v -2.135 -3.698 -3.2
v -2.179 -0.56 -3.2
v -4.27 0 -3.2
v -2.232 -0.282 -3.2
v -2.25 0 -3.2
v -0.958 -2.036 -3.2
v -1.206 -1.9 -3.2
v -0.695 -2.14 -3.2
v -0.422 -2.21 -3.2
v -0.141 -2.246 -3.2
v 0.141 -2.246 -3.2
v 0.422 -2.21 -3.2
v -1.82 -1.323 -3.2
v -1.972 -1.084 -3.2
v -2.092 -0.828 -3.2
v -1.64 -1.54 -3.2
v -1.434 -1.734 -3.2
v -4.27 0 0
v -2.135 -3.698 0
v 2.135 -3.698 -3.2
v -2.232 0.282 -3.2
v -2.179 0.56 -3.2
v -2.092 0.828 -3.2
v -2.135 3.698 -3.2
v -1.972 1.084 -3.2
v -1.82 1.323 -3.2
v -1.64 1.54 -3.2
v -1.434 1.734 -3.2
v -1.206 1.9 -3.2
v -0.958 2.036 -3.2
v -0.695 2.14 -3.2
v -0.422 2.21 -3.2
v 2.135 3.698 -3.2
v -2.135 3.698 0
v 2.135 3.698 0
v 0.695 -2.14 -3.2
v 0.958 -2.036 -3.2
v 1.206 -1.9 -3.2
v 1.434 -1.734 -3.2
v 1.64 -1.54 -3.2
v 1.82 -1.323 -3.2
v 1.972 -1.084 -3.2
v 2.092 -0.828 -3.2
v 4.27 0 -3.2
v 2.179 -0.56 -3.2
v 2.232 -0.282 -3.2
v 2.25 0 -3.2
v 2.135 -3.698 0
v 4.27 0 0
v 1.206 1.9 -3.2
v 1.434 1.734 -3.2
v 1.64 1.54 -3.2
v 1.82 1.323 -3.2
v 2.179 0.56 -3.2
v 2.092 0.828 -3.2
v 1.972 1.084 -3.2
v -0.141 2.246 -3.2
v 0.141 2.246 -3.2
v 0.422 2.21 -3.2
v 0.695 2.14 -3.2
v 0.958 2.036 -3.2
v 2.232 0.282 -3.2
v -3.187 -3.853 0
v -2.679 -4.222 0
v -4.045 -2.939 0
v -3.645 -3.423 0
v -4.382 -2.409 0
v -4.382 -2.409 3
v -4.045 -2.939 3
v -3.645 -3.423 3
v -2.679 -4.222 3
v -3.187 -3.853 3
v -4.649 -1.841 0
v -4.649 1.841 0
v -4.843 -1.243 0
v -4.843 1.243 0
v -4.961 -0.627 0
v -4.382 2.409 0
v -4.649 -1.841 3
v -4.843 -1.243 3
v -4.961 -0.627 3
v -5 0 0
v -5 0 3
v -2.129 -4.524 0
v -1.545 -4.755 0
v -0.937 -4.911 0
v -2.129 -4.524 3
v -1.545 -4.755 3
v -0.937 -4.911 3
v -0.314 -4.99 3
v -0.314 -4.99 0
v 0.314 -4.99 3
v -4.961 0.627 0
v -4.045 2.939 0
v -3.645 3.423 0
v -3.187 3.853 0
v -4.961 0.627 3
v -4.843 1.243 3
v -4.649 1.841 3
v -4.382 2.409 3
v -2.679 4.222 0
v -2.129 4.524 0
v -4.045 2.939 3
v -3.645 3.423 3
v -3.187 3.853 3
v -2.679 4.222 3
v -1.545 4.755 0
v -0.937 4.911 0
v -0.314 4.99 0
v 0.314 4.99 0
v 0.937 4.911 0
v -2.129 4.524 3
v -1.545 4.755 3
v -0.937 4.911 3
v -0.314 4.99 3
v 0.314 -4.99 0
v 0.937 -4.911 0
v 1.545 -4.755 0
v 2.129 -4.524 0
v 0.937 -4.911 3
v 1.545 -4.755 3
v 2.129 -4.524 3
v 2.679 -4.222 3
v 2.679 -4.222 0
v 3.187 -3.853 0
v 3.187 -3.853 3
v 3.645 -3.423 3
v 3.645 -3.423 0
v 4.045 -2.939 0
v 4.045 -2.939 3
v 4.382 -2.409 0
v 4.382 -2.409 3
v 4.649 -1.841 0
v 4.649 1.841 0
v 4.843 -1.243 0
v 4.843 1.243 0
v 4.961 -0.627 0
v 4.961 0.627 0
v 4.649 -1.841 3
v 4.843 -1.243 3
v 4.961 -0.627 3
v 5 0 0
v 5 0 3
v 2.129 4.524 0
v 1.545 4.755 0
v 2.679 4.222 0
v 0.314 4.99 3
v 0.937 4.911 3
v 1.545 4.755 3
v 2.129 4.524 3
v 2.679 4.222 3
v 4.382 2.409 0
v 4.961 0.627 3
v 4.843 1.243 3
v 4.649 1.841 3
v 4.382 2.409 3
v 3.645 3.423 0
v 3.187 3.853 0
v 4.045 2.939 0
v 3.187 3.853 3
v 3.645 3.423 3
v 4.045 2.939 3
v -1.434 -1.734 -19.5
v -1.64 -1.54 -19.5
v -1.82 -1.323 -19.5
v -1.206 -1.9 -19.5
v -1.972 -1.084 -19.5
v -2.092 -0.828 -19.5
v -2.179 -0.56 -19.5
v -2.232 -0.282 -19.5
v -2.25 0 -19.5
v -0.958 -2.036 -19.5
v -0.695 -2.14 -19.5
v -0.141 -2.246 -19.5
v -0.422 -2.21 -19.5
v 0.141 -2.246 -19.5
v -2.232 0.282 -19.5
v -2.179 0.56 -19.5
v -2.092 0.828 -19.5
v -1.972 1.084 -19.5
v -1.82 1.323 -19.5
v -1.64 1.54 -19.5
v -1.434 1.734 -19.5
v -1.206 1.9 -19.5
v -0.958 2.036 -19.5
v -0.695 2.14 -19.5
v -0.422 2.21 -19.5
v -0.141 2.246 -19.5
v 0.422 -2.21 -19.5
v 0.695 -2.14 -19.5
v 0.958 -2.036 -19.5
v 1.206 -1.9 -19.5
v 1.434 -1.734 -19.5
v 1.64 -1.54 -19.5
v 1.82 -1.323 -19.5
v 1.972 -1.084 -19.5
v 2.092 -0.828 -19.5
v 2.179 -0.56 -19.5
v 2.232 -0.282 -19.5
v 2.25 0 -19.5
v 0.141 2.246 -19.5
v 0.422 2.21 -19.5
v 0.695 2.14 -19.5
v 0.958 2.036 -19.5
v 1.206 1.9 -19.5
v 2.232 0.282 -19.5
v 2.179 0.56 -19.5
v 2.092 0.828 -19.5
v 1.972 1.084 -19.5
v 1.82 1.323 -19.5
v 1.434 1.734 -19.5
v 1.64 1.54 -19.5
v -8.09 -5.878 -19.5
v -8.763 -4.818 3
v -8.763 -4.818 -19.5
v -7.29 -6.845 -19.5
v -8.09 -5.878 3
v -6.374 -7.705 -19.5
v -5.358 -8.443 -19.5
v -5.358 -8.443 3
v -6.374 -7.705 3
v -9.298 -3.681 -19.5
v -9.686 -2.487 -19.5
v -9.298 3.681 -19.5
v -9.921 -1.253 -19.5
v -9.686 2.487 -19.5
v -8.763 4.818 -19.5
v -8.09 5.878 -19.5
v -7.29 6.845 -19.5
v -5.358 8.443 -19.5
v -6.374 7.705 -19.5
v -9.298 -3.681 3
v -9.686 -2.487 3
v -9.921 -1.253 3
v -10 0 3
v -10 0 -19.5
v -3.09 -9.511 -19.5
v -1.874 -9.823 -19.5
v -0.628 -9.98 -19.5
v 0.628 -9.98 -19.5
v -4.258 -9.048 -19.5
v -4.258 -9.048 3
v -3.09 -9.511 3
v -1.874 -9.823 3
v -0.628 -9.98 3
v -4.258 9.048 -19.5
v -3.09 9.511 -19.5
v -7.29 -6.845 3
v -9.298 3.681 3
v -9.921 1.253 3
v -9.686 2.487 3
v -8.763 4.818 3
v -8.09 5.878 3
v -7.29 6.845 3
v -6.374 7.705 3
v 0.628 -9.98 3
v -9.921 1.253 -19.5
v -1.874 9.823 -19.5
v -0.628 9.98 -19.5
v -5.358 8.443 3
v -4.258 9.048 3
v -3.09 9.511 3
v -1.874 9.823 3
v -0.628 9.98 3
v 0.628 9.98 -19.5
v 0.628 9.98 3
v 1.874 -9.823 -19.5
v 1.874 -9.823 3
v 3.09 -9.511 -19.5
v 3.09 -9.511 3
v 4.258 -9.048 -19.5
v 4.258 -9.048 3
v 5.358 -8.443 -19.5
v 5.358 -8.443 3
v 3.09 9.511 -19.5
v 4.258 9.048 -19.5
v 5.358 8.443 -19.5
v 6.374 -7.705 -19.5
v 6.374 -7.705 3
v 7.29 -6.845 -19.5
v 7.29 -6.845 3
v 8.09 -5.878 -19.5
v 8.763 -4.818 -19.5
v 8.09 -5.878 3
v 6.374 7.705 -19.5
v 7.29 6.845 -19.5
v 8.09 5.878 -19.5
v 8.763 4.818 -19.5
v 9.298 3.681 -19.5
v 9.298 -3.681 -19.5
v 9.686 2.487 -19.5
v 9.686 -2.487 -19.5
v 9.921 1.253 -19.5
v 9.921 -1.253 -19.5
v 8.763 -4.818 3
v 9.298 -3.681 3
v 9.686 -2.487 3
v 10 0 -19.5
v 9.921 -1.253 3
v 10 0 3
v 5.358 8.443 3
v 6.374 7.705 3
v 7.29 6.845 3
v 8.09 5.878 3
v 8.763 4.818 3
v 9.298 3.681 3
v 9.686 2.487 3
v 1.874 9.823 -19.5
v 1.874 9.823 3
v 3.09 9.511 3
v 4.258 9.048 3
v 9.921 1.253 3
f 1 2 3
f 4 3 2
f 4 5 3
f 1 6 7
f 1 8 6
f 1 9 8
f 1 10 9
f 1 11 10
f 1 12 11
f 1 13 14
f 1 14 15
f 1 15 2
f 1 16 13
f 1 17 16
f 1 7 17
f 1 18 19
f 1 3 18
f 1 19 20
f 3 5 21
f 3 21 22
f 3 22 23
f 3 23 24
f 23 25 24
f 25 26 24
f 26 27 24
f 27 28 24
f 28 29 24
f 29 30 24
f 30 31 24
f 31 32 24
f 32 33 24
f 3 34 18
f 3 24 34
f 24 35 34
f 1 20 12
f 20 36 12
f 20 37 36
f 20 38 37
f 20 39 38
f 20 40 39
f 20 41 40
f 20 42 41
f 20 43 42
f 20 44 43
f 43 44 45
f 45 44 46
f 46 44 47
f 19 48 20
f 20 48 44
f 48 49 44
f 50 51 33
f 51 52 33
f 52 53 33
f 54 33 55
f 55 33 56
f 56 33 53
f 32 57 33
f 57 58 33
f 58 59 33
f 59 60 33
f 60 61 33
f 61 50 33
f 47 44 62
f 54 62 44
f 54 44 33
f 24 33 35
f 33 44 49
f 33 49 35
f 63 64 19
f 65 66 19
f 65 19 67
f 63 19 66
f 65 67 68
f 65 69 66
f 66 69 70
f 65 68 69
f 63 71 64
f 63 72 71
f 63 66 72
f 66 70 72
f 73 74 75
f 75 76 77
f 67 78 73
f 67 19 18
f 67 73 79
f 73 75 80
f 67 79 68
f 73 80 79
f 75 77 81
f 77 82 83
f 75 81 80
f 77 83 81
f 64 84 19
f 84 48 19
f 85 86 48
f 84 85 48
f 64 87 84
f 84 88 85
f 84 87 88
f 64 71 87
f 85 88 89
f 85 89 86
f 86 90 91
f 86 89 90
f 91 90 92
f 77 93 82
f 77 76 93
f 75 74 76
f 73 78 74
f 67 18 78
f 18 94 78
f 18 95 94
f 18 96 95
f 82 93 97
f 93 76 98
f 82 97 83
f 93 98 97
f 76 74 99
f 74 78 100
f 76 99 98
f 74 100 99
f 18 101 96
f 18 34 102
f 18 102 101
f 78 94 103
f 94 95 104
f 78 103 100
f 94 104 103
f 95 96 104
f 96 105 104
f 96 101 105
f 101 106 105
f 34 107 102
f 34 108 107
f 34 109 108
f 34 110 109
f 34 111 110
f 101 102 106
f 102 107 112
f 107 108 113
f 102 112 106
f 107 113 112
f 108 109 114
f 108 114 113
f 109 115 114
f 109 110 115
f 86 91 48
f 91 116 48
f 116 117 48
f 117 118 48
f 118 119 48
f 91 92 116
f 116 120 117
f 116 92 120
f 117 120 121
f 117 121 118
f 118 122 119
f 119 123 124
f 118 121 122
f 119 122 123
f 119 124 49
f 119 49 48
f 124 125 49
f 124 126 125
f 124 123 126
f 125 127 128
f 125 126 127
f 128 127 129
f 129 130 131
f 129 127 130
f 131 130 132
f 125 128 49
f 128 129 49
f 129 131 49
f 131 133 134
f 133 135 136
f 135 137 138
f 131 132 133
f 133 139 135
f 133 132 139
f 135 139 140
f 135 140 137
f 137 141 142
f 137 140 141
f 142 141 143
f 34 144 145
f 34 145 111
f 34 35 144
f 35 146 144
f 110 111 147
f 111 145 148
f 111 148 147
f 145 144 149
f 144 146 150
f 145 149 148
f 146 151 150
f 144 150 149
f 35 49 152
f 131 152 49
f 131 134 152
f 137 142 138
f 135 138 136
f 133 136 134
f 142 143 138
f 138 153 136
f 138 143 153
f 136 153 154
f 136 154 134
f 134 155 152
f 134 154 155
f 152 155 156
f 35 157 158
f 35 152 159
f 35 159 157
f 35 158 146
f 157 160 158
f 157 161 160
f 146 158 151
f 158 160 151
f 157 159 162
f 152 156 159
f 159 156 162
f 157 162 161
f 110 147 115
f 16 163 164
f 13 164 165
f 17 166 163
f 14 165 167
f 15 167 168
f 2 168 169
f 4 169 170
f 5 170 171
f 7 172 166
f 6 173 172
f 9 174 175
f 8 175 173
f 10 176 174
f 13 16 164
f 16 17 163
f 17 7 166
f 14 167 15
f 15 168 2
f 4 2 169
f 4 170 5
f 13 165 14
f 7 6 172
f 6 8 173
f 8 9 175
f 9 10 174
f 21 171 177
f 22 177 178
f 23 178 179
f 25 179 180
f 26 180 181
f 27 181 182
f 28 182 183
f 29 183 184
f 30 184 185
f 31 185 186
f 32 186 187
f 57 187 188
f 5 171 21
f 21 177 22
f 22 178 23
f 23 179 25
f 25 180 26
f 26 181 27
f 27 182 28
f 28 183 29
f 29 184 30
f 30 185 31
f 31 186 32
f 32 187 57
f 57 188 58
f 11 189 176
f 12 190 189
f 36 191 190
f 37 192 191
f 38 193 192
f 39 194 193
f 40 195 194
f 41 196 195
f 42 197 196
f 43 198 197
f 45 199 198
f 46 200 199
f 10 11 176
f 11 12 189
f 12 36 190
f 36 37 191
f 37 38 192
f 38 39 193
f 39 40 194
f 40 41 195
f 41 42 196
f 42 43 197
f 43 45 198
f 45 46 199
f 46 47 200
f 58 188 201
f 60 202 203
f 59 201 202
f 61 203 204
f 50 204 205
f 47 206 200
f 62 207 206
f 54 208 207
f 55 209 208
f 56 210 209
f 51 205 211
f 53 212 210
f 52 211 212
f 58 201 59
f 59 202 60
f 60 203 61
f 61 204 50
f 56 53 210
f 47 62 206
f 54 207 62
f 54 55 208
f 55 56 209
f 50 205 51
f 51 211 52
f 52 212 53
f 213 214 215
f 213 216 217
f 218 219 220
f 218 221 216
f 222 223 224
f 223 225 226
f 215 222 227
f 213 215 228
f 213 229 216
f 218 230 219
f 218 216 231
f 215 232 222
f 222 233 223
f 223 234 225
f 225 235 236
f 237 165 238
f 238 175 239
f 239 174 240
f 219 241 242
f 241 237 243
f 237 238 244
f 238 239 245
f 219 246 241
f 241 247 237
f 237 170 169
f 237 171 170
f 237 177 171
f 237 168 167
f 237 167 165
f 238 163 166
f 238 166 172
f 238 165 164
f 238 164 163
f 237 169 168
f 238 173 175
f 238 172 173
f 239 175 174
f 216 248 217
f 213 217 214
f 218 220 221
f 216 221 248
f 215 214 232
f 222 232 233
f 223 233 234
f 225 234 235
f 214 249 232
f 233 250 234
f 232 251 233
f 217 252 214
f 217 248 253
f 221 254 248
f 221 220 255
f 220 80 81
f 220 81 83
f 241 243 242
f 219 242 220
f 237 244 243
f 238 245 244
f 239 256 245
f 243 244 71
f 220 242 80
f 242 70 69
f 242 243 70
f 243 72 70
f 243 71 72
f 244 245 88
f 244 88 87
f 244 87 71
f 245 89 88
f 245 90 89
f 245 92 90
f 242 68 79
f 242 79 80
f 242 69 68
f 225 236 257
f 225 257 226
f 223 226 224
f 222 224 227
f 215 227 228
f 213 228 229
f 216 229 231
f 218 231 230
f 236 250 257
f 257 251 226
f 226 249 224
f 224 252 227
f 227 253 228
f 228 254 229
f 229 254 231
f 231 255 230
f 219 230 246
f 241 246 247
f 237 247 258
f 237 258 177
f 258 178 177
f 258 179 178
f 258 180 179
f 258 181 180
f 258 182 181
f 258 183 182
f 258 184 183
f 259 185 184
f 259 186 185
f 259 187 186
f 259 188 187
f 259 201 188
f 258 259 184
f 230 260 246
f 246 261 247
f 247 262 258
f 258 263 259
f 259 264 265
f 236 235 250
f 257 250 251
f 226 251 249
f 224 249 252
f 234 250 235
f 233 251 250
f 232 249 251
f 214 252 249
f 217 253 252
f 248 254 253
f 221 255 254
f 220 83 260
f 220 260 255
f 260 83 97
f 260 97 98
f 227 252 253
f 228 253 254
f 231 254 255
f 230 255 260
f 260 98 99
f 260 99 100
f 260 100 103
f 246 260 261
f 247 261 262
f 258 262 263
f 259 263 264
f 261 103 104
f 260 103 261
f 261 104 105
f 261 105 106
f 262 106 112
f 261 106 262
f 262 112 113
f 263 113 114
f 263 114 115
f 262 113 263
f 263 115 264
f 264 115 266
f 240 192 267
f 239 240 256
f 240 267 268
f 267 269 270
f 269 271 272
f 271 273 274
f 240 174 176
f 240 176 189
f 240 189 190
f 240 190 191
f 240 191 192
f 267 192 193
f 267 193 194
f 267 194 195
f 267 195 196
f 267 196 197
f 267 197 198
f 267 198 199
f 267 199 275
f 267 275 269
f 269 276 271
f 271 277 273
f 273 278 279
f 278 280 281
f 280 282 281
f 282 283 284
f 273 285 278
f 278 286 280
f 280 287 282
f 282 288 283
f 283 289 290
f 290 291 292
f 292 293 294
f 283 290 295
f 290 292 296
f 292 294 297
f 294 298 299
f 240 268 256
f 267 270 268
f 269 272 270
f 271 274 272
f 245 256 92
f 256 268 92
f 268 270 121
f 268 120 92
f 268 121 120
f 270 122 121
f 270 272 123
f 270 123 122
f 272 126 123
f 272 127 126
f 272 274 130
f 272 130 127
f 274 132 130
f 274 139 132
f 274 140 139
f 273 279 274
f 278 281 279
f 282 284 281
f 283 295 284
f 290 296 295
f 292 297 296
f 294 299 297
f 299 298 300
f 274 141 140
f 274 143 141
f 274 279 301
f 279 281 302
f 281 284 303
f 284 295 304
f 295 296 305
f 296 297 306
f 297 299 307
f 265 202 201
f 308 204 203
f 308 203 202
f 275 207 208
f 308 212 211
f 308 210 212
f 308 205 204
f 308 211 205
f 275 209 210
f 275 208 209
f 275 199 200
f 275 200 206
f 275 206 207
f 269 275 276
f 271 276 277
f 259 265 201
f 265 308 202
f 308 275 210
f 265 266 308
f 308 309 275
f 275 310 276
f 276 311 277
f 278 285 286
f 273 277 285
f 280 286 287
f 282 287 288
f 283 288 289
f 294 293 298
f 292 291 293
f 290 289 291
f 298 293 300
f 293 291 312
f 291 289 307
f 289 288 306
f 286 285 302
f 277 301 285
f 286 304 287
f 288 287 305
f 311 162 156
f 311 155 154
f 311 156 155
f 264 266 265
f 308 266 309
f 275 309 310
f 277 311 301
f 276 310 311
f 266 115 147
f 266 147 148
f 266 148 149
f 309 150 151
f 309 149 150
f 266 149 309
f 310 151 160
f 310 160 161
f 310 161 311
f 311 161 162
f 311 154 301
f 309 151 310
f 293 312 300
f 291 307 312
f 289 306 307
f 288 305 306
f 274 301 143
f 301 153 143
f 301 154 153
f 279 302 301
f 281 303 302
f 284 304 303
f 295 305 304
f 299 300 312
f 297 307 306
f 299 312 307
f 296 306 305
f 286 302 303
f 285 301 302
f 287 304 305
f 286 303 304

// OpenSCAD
$fn = 50;

difference() {
	union() {
		translate(v = [0, 0, -19.5]) {
			cylinder(h = 22.5, r = 10.0);
		}
	}
	union() {
		translate(v = [0, 0, 0]) {
			rotate(a = [0, 0, 0]) {
				difference() {
					union() {
						translate(v = [0, 0, -3.2]) {
							linear_extrude(height = 3.2) {
								polygon(points = [[4.2698, 0.0], [2.1349000000000005, 3.697755269078796], [-2.134899999999999, 3.6977552690787965], [-4.2698, 5.228996902999369e-16], [-2.134900000000002, -3.6977552690787956], [2.1348999999999974, -3.697755269078798]]);
							}
						}
					}
					union();
				}
			}
		}
		#cylinder(h = 3, r = 5.0);
		#translate(v = [0, 0, -100.0]) {
			cylinder(h = 200, r = 2.25);
		}
	}
}
